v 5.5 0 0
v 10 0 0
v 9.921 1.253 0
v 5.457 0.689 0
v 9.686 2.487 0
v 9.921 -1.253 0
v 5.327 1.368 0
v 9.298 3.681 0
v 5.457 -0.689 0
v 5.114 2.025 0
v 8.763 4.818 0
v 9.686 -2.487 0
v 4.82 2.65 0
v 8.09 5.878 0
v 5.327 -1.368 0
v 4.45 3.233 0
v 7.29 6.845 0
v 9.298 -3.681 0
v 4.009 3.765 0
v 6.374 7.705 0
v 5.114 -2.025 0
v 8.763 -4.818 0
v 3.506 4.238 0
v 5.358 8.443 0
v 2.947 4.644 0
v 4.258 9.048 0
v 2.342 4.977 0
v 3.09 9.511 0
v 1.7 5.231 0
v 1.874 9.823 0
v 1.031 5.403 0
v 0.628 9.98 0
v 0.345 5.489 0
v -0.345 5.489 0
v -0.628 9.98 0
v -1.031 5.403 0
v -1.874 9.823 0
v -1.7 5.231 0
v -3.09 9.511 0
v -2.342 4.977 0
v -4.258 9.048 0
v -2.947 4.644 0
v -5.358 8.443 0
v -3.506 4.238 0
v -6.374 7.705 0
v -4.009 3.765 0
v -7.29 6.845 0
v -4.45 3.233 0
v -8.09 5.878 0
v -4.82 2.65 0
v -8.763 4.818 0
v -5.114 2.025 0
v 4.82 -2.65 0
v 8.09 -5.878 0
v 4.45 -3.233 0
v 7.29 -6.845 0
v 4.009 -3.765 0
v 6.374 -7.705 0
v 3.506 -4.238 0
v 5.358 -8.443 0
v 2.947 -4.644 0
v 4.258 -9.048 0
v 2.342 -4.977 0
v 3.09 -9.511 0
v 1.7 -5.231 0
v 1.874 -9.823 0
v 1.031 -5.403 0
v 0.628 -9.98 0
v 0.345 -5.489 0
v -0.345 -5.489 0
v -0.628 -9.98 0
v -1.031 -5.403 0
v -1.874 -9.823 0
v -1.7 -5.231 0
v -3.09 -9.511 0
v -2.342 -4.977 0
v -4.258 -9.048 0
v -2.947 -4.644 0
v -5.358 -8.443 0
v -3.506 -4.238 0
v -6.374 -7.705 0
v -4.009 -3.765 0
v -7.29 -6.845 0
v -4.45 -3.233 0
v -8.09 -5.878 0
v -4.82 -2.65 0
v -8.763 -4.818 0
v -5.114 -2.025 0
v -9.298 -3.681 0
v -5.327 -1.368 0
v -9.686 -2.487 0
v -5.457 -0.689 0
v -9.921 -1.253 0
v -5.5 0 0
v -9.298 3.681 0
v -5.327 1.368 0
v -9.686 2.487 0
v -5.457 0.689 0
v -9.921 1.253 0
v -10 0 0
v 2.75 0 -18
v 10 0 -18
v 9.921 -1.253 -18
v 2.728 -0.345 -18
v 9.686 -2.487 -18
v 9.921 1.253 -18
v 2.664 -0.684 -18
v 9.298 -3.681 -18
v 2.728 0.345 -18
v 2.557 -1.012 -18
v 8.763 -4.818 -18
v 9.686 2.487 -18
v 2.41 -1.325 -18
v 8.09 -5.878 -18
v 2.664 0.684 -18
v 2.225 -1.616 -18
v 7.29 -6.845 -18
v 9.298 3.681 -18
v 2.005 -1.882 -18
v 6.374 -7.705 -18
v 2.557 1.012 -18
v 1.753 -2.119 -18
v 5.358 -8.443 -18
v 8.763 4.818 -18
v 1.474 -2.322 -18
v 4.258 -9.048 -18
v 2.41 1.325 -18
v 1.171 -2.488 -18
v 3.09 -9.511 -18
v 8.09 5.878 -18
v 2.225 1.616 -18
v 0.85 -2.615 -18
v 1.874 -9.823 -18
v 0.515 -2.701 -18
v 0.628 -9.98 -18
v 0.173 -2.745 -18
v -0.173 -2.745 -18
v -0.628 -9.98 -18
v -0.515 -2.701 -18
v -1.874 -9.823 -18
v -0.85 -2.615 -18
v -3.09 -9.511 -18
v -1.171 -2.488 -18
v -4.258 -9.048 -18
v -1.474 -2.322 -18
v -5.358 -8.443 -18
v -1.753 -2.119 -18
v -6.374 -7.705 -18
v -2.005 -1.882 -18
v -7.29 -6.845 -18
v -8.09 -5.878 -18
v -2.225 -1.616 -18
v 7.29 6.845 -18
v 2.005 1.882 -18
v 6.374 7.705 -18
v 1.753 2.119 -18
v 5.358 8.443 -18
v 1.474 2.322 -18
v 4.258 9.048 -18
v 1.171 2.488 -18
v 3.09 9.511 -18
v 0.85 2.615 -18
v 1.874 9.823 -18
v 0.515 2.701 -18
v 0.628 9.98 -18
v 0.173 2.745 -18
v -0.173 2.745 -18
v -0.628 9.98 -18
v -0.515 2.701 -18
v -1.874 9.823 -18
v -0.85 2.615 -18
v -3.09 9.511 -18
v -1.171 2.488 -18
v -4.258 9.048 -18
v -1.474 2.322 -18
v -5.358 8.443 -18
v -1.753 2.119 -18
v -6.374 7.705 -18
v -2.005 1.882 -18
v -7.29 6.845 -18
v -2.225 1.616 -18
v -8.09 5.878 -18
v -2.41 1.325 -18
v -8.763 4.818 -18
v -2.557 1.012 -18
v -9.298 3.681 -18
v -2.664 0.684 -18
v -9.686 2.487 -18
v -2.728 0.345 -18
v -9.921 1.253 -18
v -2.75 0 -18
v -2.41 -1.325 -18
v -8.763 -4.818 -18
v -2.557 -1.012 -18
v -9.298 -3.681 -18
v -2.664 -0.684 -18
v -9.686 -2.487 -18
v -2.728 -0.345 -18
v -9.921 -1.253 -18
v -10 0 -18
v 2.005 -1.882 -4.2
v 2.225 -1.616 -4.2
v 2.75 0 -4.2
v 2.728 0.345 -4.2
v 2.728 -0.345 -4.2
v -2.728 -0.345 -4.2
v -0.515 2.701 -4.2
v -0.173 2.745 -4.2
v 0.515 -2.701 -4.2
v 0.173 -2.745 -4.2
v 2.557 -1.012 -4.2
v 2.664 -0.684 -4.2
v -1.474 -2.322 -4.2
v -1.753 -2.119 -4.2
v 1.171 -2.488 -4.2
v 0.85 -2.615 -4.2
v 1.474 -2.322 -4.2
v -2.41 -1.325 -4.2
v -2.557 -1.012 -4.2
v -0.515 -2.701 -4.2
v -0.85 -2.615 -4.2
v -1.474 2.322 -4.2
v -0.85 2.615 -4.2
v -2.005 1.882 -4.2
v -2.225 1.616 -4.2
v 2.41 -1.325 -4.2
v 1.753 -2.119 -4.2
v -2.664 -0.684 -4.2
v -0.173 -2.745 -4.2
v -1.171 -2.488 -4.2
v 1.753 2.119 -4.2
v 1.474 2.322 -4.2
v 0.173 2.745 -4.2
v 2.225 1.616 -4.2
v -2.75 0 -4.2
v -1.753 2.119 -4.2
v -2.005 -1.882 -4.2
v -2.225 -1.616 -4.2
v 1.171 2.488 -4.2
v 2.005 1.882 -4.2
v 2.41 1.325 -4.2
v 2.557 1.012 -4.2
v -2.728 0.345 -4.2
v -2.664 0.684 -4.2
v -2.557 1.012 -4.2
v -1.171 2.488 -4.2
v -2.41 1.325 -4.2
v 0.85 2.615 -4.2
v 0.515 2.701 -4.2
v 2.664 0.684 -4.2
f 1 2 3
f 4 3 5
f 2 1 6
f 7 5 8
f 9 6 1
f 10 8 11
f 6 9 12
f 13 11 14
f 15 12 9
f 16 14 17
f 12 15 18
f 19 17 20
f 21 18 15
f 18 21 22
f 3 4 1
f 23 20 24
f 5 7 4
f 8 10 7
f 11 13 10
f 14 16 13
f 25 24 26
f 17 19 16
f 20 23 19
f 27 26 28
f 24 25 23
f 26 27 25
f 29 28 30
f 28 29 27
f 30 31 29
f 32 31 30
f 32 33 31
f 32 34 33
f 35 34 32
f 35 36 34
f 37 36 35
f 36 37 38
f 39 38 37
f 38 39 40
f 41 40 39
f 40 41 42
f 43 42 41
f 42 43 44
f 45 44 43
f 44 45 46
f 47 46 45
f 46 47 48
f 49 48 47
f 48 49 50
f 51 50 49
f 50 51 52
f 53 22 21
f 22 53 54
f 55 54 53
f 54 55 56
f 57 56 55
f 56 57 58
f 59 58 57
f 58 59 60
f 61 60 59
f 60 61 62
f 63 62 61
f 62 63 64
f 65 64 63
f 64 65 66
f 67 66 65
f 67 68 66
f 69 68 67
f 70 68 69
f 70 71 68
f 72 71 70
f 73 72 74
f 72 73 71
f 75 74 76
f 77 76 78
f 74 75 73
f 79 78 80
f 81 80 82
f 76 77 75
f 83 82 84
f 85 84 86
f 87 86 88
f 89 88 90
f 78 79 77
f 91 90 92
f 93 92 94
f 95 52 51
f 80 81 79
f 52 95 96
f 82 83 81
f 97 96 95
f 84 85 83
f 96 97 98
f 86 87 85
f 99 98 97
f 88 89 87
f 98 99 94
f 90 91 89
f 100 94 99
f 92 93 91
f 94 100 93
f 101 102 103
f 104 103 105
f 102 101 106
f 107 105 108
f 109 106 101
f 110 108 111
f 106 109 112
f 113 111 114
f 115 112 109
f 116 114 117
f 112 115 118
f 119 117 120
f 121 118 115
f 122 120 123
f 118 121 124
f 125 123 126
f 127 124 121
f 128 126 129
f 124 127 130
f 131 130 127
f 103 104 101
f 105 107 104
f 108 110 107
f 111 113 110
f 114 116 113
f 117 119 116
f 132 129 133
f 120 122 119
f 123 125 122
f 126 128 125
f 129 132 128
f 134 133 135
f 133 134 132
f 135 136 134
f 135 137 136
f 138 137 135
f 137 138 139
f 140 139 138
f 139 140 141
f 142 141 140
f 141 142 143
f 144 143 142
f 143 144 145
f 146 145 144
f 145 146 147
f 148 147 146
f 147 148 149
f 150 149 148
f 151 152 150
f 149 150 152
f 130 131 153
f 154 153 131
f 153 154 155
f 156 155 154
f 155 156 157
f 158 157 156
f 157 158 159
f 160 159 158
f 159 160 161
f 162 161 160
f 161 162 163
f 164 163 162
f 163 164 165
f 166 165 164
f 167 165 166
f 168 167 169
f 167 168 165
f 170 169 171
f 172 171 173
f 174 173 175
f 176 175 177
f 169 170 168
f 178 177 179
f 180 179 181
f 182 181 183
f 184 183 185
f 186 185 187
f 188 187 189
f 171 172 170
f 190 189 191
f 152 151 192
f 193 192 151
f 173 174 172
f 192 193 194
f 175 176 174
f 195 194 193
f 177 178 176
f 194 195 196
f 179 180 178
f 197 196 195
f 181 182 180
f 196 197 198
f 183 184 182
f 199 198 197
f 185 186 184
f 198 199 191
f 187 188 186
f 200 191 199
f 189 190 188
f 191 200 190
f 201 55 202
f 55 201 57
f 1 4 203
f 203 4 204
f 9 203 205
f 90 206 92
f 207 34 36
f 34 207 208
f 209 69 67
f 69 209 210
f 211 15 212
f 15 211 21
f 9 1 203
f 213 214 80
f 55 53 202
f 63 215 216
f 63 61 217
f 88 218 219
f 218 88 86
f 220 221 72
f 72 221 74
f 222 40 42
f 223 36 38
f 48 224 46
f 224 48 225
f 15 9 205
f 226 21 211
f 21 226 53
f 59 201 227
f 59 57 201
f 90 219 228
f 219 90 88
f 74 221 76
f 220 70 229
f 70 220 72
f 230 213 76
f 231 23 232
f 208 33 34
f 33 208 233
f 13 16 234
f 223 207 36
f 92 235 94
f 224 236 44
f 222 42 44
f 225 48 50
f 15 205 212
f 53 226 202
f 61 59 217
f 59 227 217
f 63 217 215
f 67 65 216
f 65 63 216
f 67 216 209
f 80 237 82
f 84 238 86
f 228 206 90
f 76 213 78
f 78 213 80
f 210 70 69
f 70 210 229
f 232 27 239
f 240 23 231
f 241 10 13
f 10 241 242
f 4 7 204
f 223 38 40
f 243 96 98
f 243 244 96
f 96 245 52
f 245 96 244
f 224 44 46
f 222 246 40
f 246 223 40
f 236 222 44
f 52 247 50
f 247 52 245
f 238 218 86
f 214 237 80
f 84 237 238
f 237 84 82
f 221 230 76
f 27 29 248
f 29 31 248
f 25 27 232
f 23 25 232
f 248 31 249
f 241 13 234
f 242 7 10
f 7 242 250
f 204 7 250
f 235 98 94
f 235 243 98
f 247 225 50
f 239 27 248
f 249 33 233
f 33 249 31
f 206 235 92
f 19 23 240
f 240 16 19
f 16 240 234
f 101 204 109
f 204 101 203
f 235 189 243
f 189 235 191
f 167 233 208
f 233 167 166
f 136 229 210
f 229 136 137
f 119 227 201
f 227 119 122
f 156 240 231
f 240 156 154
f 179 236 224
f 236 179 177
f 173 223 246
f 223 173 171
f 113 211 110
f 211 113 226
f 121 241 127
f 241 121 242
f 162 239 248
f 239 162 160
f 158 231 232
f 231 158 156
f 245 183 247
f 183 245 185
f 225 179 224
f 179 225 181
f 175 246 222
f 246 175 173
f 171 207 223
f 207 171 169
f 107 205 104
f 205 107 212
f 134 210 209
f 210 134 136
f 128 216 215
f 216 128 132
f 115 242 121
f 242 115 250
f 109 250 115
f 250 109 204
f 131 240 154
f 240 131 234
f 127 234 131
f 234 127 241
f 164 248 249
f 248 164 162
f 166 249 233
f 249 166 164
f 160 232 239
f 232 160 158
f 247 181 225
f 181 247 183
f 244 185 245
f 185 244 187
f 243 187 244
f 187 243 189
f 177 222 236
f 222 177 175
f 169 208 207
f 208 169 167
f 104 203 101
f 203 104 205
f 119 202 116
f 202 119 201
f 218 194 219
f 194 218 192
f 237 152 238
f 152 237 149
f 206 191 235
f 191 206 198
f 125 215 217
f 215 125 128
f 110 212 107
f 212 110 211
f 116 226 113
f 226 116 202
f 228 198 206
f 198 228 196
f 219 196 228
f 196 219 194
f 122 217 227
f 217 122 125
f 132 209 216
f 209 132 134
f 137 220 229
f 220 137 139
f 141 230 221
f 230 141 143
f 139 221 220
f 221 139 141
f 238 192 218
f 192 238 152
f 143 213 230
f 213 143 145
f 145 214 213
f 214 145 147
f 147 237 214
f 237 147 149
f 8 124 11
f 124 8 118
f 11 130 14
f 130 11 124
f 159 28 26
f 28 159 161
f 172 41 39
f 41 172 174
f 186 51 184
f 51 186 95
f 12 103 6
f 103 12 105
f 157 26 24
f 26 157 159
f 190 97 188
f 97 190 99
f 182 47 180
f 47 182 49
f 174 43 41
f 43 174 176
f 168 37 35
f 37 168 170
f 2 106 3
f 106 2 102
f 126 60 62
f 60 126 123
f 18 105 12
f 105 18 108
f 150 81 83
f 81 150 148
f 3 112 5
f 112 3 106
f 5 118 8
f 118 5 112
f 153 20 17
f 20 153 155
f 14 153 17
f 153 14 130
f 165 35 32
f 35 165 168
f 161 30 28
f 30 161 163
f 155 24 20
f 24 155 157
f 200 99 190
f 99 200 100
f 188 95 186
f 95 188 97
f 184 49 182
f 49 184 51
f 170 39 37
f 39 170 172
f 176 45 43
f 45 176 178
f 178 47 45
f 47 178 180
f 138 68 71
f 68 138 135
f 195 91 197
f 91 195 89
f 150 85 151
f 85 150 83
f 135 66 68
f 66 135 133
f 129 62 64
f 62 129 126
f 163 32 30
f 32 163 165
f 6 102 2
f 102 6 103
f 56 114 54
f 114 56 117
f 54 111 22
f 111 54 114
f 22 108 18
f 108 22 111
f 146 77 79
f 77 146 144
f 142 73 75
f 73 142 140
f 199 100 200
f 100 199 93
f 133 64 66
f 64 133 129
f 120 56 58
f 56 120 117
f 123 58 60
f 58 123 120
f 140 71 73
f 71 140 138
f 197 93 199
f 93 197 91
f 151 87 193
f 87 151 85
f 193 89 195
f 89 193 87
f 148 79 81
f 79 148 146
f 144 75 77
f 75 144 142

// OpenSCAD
$fn = 50;


difference() {
	union() {
		translate(v = [0, 0, -18.0000000000]) {
			cylinder(h = 18, r = 10.0000000000);
		}
		cylinder(h = 0, r = 19.0000000000);
	}
	union() {
		translate(v = [0, 0, 0]) {
			rotate(a = [0, 0, 0]) {
				difference() {
					union() {
						#translate(v = [0, 0, -18.0000000000]) {
							cylinder(h = 18, r = 2.2500000000);
						}
						#translate(v = [0, 0, -4.2000000000]) {
							cylinder(h = 4.2000000000, r1 = 2.7500000000, r2 = 5.5000000000);
						}
						#translate(v = [0, 0, -18.0000000000]) {
							cylinder(h = 18, r = 2.7500000000);
						}
						#translate(v = [0, 0, -18.0000000000]) {
							cylinder(h = 18, r = 2.2500000000);
						}
					}
					union();
				}
			}
		}
	}
}
